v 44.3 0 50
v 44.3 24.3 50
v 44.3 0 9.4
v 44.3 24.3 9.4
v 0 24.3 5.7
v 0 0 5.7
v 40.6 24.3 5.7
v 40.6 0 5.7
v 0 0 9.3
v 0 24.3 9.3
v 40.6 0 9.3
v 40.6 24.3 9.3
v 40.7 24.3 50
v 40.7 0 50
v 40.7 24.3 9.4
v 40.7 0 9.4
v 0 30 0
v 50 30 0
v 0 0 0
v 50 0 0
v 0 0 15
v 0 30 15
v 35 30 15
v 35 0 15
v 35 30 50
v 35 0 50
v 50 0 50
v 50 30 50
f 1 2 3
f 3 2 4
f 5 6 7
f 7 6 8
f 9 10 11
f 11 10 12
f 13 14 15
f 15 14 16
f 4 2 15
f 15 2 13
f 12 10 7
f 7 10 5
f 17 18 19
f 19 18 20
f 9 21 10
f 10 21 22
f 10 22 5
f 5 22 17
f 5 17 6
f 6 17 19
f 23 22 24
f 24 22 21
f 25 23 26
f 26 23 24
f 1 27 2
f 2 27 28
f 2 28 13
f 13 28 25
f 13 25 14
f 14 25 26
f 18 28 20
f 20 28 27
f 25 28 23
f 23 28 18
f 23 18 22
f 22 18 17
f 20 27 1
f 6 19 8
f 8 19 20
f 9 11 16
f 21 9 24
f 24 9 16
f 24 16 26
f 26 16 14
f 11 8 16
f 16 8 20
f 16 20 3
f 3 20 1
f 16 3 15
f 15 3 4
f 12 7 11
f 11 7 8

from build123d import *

# Parameters (mm, degrees)
BOSS_EXTRU_1_DEPTH      = 30
ENL_V_MAT_EXTRU_1_DEPTH = 24.3
ESQUISSE5_W             = 3.7
ESQUISSE5_H             = 3.7
BOSS_EXTRU_5_DEPTH      = 24.3


with BuildPart() as part:
    # Esquisse1 → Boss.-Extru.1 (new body)
    with BuildSketch(Plane(origin=(0, 0, 0), x_dir=(1, 0, 0), z_dir=(0, 1, 0))):
        Polygon((0, 0), (0, -15), (35, -15), (35, -50), (50, -50), (50, 0), align=None)
    extrude(amount=BOSS_EXTRU_1_DEPTH)

    # Esquisse2 → Enlèv. mat.-Extru.1 (cut)
    with BuildSketch(Plane.XZ):
        Polygon((40.7, 50), (40.7, 9.3), (0, 9.3), (0, 5.7), (44.3, 5.7), (44.3, 50), align=None)
    extrude(amount=-ENL_V_MAT_EXTRU_1_DEPTH, mode=Mode.SUBTRACT)

    # Esquisse5 → Boss.-Extru.5 (add)
    with BuildSketch(Plane.XZ.offset(-24.3)):
        with Locations((42.45, 7.55)):
            Rectangle(ESQUISSE5_W, ESQUISSE5_H)
    extrude(amount=BOSS_EXTRU_5_DEPTH)


solid = part.part
